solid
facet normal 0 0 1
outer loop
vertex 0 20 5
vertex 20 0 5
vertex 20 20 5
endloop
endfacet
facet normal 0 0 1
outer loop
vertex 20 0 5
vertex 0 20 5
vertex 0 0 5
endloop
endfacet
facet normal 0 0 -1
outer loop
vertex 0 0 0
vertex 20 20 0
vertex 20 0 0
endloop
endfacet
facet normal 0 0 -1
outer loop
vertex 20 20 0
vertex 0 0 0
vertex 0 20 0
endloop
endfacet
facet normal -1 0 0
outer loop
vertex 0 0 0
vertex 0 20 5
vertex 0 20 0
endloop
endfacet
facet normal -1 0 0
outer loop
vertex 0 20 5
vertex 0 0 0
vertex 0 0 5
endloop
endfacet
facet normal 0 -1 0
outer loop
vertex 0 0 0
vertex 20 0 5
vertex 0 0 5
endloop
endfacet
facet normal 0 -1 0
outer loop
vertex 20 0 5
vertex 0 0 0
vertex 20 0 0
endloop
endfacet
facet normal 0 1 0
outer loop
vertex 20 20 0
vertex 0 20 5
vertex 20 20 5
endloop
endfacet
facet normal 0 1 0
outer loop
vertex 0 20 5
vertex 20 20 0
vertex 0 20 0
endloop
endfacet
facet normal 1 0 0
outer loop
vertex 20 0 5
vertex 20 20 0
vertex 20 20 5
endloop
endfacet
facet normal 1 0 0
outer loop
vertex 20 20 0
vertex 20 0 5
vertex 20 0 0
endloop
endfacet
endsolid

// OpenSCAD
module irregular_array(size, spacing, height) {
  for (i = [0:size-1]) {
    for (j = [0:size-1]) {
      translate([i * spacing, j * spacing, 0]) {
        cube([spacing, spacing, height]);
      }
    }
  }
}

irregular_array(20, 1, 5);
